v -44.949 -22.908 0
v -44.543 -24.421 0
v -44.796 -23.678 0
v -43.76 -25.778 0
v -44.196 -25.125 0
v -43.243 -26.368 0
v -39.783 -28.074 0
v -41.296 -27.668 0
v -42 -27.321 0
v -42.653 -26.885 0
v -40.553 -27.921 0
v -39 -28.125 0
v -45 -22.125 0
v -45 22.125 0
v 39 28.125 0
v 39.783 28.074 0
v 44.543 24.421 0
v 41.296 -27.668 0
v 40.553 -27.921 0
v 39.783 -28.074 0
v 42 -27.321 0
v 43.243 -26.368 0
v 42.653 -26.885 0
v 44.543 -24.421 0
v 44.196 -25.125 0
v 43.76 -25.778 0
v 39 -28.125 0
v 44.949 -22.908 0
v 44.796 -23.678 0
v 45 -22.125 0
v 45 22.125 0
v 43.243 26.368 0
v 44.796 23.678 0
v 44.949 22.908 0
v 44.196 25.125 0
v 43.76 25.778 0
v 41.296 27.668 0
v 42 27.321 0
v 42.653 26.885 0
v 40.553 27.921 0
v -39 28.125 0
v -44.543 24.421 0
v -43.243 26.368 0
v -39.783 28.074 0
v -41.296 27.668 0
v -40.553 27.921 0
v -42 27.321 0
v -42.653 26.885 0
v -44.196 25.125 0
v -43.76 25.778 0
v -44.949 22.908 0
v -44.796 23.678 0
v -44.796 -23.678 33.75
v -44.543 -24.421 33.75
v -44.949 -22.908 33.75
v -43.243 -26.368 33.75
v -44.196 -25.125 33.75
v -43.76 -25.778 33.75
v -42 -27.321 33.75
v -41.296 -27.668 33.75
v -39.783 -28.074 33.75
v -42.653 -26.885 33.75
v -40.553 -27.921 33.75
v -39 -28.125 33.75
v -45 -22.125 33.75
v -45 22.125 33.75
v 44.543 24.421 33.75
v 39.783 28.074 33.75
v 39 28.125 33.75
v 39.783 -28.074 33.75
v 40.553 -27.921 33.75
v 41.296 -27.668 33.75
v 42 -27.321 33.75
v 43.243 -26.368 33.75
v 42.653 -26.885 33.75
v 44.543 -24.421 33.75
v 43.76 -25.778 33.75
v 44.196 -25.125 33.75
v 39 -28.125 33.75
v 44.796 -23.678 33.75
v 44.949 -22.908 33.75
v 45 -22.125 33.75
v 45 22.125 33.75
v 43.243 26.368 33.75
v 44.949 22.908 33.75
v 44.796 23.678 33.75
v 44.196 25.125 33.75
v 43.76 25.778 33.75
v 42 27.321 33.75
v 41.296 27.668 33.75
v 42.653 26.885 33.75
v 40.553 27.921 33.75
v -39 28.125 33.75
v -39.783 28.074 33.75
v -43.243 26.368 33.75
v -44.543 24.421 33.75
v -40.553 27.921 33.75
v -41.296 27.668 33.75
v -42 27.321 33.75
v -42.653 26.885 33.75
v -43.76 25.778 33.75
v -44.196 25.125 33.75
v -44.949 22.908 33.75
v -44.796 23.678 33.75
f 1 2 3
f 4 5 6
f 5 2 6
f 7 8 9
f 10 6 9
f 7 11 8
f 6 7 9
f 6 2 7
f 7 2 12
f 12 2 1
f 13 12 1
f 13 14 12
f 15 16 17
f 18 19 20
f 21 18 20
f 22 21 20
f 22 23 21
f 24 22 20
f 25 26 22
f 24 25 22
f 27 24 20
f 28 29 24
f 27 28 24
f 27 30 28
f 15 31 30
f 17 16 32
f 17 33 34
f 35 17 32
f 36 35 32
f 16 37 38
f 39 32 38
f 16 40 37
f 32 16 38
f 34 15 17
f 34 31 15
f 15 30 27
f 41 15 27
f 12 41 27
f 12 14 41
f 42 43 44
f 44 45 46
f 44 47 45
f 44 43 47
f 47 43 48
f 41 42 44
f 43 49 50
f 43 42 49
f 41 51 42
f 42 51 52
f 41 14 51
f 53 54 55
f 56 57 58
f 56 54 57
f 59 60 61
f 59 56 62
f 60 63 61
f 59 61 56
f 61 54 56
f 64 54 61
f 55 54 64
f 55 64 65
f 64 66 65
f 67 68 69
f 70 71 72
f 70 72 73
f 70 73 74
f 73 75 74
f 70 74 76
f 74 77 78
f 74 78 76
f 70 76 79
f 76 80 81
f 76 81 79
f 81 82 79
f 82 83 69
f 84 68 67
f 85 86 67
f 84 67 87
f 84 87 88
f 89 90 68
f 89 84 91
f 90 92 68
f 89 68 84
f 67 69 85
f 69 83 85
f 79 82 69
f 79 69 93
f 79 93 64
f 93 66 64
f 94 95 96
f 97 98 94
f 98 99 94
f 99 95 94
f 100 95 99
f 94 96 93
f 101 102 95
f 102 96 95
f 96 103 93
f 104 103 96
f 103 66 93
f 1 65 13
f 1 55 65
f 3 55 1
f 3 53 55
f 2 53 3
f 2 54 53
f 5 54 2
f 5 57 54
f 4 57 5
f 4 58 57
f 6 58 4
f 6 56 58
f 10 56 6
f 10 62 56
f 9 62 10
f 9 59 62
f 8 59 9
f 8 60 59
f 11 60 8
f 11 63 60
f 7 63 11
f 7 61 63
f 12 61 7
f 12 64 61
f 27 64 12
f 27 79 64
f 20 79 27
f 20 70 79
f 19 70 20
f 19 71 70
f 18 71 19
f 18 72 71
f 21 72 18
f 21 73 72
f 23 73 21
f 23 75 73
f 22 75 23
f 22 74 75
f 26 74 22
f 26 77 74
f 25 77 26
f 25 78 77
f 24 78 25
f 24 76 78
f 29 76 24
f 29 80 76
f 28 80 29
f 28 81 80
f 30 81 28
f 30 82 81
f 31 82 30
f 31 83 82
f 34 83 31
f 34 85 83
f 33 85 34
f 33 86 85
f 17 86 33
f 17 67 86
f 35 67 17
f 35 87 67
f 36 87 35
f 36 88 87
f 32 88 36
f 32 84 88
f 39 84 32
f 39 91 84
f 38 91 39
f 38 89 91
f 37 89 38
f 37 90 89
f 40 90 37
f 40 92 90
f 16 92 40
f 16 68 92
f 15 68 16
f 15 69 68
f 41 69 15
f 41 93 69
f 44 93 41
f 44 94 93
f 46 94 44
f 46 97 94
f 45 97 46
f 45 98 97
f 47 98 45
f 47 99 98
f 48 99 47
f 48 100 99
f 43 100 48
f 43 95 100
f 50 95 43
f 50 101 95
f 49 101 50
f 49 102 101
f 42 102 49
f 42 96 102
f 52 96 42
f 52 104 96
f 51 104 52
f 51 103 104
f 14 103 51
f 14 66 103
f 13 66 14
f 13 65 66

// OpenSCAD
/* doodle-meta {"version":1,"parameters":{"width":{"label":"Overall width","description":"Changes the body width","unit":"mm","feature":"body_width"},"depth":{"label":"Overall depth","description":"Changes the body depth","unit":"mm","feature":"body_depth"},"height":{"label":"Overall height","description":"Changes the body height","unit":"mm","feature":"body_height"},"fillet_radius":{"label":"Fillet radius","description":"Radius of the vertical corner fillets","unit":"mm","feature":"corner_fillet"}},"features":{"body_width":{"kind":"dimension","axis":"x","label":"Overall width"},"body_depth":{"kind":"dimension","axis":"y","label":"Overall depth"},"body_height":{"kind":"dimension","axis":"z","label":"Overall height"},"corner_fillet":{"kind":"region","label":"Vertical corner fillets","min":[{"parameter":"width","scale":0.5,"offset":0},{"parameter":"depth","scale":0.5,"offset":0},0],"max":[{"parameter":"width","scale":0.5,"offset":0},{"parameter":"depth","scale":0.5,"offset":0},{"parameter":"height","scale":1,"offset":0}]}}} */

// Overall dimensions (mm)
width  = 90;   // drawing: top view "80x50", front view width 80mm
depth  = 56.25;   // drawing: top view "80x50", right view depth 50mm
height = 33.75;   // drawing: front/right view height 30mm
fillet_radius = 6.0; // drawing: "4 corners: R6"

// Implementation constants (not user-editable)
$fn = 48;

// Rounded-rectangle profile in the XY plane, centred on the origin.
module rounded_rect(w, d, r) {
    hull() {
        translate([ (w/2 - r),  (d/2 - r), 0]) circle(r = r);
        translate([-(w/2 - r),  (d/2 - r), 0]) circle(r = r);
        translate([ (w/2 - r), -(d/2 - r), 0]) circle(r = r);
        translate([-(w/2 - r), -(d/2 - r), 0]) circle(r = r);
    }
}

// Solid block: rounded-rect profile extruded along Z, sitting on the build plate.
module housing_block() {
    linear_extrude(height = height)
        rounded_rect(width, depth, fillet_radius);
}

housing_block();
